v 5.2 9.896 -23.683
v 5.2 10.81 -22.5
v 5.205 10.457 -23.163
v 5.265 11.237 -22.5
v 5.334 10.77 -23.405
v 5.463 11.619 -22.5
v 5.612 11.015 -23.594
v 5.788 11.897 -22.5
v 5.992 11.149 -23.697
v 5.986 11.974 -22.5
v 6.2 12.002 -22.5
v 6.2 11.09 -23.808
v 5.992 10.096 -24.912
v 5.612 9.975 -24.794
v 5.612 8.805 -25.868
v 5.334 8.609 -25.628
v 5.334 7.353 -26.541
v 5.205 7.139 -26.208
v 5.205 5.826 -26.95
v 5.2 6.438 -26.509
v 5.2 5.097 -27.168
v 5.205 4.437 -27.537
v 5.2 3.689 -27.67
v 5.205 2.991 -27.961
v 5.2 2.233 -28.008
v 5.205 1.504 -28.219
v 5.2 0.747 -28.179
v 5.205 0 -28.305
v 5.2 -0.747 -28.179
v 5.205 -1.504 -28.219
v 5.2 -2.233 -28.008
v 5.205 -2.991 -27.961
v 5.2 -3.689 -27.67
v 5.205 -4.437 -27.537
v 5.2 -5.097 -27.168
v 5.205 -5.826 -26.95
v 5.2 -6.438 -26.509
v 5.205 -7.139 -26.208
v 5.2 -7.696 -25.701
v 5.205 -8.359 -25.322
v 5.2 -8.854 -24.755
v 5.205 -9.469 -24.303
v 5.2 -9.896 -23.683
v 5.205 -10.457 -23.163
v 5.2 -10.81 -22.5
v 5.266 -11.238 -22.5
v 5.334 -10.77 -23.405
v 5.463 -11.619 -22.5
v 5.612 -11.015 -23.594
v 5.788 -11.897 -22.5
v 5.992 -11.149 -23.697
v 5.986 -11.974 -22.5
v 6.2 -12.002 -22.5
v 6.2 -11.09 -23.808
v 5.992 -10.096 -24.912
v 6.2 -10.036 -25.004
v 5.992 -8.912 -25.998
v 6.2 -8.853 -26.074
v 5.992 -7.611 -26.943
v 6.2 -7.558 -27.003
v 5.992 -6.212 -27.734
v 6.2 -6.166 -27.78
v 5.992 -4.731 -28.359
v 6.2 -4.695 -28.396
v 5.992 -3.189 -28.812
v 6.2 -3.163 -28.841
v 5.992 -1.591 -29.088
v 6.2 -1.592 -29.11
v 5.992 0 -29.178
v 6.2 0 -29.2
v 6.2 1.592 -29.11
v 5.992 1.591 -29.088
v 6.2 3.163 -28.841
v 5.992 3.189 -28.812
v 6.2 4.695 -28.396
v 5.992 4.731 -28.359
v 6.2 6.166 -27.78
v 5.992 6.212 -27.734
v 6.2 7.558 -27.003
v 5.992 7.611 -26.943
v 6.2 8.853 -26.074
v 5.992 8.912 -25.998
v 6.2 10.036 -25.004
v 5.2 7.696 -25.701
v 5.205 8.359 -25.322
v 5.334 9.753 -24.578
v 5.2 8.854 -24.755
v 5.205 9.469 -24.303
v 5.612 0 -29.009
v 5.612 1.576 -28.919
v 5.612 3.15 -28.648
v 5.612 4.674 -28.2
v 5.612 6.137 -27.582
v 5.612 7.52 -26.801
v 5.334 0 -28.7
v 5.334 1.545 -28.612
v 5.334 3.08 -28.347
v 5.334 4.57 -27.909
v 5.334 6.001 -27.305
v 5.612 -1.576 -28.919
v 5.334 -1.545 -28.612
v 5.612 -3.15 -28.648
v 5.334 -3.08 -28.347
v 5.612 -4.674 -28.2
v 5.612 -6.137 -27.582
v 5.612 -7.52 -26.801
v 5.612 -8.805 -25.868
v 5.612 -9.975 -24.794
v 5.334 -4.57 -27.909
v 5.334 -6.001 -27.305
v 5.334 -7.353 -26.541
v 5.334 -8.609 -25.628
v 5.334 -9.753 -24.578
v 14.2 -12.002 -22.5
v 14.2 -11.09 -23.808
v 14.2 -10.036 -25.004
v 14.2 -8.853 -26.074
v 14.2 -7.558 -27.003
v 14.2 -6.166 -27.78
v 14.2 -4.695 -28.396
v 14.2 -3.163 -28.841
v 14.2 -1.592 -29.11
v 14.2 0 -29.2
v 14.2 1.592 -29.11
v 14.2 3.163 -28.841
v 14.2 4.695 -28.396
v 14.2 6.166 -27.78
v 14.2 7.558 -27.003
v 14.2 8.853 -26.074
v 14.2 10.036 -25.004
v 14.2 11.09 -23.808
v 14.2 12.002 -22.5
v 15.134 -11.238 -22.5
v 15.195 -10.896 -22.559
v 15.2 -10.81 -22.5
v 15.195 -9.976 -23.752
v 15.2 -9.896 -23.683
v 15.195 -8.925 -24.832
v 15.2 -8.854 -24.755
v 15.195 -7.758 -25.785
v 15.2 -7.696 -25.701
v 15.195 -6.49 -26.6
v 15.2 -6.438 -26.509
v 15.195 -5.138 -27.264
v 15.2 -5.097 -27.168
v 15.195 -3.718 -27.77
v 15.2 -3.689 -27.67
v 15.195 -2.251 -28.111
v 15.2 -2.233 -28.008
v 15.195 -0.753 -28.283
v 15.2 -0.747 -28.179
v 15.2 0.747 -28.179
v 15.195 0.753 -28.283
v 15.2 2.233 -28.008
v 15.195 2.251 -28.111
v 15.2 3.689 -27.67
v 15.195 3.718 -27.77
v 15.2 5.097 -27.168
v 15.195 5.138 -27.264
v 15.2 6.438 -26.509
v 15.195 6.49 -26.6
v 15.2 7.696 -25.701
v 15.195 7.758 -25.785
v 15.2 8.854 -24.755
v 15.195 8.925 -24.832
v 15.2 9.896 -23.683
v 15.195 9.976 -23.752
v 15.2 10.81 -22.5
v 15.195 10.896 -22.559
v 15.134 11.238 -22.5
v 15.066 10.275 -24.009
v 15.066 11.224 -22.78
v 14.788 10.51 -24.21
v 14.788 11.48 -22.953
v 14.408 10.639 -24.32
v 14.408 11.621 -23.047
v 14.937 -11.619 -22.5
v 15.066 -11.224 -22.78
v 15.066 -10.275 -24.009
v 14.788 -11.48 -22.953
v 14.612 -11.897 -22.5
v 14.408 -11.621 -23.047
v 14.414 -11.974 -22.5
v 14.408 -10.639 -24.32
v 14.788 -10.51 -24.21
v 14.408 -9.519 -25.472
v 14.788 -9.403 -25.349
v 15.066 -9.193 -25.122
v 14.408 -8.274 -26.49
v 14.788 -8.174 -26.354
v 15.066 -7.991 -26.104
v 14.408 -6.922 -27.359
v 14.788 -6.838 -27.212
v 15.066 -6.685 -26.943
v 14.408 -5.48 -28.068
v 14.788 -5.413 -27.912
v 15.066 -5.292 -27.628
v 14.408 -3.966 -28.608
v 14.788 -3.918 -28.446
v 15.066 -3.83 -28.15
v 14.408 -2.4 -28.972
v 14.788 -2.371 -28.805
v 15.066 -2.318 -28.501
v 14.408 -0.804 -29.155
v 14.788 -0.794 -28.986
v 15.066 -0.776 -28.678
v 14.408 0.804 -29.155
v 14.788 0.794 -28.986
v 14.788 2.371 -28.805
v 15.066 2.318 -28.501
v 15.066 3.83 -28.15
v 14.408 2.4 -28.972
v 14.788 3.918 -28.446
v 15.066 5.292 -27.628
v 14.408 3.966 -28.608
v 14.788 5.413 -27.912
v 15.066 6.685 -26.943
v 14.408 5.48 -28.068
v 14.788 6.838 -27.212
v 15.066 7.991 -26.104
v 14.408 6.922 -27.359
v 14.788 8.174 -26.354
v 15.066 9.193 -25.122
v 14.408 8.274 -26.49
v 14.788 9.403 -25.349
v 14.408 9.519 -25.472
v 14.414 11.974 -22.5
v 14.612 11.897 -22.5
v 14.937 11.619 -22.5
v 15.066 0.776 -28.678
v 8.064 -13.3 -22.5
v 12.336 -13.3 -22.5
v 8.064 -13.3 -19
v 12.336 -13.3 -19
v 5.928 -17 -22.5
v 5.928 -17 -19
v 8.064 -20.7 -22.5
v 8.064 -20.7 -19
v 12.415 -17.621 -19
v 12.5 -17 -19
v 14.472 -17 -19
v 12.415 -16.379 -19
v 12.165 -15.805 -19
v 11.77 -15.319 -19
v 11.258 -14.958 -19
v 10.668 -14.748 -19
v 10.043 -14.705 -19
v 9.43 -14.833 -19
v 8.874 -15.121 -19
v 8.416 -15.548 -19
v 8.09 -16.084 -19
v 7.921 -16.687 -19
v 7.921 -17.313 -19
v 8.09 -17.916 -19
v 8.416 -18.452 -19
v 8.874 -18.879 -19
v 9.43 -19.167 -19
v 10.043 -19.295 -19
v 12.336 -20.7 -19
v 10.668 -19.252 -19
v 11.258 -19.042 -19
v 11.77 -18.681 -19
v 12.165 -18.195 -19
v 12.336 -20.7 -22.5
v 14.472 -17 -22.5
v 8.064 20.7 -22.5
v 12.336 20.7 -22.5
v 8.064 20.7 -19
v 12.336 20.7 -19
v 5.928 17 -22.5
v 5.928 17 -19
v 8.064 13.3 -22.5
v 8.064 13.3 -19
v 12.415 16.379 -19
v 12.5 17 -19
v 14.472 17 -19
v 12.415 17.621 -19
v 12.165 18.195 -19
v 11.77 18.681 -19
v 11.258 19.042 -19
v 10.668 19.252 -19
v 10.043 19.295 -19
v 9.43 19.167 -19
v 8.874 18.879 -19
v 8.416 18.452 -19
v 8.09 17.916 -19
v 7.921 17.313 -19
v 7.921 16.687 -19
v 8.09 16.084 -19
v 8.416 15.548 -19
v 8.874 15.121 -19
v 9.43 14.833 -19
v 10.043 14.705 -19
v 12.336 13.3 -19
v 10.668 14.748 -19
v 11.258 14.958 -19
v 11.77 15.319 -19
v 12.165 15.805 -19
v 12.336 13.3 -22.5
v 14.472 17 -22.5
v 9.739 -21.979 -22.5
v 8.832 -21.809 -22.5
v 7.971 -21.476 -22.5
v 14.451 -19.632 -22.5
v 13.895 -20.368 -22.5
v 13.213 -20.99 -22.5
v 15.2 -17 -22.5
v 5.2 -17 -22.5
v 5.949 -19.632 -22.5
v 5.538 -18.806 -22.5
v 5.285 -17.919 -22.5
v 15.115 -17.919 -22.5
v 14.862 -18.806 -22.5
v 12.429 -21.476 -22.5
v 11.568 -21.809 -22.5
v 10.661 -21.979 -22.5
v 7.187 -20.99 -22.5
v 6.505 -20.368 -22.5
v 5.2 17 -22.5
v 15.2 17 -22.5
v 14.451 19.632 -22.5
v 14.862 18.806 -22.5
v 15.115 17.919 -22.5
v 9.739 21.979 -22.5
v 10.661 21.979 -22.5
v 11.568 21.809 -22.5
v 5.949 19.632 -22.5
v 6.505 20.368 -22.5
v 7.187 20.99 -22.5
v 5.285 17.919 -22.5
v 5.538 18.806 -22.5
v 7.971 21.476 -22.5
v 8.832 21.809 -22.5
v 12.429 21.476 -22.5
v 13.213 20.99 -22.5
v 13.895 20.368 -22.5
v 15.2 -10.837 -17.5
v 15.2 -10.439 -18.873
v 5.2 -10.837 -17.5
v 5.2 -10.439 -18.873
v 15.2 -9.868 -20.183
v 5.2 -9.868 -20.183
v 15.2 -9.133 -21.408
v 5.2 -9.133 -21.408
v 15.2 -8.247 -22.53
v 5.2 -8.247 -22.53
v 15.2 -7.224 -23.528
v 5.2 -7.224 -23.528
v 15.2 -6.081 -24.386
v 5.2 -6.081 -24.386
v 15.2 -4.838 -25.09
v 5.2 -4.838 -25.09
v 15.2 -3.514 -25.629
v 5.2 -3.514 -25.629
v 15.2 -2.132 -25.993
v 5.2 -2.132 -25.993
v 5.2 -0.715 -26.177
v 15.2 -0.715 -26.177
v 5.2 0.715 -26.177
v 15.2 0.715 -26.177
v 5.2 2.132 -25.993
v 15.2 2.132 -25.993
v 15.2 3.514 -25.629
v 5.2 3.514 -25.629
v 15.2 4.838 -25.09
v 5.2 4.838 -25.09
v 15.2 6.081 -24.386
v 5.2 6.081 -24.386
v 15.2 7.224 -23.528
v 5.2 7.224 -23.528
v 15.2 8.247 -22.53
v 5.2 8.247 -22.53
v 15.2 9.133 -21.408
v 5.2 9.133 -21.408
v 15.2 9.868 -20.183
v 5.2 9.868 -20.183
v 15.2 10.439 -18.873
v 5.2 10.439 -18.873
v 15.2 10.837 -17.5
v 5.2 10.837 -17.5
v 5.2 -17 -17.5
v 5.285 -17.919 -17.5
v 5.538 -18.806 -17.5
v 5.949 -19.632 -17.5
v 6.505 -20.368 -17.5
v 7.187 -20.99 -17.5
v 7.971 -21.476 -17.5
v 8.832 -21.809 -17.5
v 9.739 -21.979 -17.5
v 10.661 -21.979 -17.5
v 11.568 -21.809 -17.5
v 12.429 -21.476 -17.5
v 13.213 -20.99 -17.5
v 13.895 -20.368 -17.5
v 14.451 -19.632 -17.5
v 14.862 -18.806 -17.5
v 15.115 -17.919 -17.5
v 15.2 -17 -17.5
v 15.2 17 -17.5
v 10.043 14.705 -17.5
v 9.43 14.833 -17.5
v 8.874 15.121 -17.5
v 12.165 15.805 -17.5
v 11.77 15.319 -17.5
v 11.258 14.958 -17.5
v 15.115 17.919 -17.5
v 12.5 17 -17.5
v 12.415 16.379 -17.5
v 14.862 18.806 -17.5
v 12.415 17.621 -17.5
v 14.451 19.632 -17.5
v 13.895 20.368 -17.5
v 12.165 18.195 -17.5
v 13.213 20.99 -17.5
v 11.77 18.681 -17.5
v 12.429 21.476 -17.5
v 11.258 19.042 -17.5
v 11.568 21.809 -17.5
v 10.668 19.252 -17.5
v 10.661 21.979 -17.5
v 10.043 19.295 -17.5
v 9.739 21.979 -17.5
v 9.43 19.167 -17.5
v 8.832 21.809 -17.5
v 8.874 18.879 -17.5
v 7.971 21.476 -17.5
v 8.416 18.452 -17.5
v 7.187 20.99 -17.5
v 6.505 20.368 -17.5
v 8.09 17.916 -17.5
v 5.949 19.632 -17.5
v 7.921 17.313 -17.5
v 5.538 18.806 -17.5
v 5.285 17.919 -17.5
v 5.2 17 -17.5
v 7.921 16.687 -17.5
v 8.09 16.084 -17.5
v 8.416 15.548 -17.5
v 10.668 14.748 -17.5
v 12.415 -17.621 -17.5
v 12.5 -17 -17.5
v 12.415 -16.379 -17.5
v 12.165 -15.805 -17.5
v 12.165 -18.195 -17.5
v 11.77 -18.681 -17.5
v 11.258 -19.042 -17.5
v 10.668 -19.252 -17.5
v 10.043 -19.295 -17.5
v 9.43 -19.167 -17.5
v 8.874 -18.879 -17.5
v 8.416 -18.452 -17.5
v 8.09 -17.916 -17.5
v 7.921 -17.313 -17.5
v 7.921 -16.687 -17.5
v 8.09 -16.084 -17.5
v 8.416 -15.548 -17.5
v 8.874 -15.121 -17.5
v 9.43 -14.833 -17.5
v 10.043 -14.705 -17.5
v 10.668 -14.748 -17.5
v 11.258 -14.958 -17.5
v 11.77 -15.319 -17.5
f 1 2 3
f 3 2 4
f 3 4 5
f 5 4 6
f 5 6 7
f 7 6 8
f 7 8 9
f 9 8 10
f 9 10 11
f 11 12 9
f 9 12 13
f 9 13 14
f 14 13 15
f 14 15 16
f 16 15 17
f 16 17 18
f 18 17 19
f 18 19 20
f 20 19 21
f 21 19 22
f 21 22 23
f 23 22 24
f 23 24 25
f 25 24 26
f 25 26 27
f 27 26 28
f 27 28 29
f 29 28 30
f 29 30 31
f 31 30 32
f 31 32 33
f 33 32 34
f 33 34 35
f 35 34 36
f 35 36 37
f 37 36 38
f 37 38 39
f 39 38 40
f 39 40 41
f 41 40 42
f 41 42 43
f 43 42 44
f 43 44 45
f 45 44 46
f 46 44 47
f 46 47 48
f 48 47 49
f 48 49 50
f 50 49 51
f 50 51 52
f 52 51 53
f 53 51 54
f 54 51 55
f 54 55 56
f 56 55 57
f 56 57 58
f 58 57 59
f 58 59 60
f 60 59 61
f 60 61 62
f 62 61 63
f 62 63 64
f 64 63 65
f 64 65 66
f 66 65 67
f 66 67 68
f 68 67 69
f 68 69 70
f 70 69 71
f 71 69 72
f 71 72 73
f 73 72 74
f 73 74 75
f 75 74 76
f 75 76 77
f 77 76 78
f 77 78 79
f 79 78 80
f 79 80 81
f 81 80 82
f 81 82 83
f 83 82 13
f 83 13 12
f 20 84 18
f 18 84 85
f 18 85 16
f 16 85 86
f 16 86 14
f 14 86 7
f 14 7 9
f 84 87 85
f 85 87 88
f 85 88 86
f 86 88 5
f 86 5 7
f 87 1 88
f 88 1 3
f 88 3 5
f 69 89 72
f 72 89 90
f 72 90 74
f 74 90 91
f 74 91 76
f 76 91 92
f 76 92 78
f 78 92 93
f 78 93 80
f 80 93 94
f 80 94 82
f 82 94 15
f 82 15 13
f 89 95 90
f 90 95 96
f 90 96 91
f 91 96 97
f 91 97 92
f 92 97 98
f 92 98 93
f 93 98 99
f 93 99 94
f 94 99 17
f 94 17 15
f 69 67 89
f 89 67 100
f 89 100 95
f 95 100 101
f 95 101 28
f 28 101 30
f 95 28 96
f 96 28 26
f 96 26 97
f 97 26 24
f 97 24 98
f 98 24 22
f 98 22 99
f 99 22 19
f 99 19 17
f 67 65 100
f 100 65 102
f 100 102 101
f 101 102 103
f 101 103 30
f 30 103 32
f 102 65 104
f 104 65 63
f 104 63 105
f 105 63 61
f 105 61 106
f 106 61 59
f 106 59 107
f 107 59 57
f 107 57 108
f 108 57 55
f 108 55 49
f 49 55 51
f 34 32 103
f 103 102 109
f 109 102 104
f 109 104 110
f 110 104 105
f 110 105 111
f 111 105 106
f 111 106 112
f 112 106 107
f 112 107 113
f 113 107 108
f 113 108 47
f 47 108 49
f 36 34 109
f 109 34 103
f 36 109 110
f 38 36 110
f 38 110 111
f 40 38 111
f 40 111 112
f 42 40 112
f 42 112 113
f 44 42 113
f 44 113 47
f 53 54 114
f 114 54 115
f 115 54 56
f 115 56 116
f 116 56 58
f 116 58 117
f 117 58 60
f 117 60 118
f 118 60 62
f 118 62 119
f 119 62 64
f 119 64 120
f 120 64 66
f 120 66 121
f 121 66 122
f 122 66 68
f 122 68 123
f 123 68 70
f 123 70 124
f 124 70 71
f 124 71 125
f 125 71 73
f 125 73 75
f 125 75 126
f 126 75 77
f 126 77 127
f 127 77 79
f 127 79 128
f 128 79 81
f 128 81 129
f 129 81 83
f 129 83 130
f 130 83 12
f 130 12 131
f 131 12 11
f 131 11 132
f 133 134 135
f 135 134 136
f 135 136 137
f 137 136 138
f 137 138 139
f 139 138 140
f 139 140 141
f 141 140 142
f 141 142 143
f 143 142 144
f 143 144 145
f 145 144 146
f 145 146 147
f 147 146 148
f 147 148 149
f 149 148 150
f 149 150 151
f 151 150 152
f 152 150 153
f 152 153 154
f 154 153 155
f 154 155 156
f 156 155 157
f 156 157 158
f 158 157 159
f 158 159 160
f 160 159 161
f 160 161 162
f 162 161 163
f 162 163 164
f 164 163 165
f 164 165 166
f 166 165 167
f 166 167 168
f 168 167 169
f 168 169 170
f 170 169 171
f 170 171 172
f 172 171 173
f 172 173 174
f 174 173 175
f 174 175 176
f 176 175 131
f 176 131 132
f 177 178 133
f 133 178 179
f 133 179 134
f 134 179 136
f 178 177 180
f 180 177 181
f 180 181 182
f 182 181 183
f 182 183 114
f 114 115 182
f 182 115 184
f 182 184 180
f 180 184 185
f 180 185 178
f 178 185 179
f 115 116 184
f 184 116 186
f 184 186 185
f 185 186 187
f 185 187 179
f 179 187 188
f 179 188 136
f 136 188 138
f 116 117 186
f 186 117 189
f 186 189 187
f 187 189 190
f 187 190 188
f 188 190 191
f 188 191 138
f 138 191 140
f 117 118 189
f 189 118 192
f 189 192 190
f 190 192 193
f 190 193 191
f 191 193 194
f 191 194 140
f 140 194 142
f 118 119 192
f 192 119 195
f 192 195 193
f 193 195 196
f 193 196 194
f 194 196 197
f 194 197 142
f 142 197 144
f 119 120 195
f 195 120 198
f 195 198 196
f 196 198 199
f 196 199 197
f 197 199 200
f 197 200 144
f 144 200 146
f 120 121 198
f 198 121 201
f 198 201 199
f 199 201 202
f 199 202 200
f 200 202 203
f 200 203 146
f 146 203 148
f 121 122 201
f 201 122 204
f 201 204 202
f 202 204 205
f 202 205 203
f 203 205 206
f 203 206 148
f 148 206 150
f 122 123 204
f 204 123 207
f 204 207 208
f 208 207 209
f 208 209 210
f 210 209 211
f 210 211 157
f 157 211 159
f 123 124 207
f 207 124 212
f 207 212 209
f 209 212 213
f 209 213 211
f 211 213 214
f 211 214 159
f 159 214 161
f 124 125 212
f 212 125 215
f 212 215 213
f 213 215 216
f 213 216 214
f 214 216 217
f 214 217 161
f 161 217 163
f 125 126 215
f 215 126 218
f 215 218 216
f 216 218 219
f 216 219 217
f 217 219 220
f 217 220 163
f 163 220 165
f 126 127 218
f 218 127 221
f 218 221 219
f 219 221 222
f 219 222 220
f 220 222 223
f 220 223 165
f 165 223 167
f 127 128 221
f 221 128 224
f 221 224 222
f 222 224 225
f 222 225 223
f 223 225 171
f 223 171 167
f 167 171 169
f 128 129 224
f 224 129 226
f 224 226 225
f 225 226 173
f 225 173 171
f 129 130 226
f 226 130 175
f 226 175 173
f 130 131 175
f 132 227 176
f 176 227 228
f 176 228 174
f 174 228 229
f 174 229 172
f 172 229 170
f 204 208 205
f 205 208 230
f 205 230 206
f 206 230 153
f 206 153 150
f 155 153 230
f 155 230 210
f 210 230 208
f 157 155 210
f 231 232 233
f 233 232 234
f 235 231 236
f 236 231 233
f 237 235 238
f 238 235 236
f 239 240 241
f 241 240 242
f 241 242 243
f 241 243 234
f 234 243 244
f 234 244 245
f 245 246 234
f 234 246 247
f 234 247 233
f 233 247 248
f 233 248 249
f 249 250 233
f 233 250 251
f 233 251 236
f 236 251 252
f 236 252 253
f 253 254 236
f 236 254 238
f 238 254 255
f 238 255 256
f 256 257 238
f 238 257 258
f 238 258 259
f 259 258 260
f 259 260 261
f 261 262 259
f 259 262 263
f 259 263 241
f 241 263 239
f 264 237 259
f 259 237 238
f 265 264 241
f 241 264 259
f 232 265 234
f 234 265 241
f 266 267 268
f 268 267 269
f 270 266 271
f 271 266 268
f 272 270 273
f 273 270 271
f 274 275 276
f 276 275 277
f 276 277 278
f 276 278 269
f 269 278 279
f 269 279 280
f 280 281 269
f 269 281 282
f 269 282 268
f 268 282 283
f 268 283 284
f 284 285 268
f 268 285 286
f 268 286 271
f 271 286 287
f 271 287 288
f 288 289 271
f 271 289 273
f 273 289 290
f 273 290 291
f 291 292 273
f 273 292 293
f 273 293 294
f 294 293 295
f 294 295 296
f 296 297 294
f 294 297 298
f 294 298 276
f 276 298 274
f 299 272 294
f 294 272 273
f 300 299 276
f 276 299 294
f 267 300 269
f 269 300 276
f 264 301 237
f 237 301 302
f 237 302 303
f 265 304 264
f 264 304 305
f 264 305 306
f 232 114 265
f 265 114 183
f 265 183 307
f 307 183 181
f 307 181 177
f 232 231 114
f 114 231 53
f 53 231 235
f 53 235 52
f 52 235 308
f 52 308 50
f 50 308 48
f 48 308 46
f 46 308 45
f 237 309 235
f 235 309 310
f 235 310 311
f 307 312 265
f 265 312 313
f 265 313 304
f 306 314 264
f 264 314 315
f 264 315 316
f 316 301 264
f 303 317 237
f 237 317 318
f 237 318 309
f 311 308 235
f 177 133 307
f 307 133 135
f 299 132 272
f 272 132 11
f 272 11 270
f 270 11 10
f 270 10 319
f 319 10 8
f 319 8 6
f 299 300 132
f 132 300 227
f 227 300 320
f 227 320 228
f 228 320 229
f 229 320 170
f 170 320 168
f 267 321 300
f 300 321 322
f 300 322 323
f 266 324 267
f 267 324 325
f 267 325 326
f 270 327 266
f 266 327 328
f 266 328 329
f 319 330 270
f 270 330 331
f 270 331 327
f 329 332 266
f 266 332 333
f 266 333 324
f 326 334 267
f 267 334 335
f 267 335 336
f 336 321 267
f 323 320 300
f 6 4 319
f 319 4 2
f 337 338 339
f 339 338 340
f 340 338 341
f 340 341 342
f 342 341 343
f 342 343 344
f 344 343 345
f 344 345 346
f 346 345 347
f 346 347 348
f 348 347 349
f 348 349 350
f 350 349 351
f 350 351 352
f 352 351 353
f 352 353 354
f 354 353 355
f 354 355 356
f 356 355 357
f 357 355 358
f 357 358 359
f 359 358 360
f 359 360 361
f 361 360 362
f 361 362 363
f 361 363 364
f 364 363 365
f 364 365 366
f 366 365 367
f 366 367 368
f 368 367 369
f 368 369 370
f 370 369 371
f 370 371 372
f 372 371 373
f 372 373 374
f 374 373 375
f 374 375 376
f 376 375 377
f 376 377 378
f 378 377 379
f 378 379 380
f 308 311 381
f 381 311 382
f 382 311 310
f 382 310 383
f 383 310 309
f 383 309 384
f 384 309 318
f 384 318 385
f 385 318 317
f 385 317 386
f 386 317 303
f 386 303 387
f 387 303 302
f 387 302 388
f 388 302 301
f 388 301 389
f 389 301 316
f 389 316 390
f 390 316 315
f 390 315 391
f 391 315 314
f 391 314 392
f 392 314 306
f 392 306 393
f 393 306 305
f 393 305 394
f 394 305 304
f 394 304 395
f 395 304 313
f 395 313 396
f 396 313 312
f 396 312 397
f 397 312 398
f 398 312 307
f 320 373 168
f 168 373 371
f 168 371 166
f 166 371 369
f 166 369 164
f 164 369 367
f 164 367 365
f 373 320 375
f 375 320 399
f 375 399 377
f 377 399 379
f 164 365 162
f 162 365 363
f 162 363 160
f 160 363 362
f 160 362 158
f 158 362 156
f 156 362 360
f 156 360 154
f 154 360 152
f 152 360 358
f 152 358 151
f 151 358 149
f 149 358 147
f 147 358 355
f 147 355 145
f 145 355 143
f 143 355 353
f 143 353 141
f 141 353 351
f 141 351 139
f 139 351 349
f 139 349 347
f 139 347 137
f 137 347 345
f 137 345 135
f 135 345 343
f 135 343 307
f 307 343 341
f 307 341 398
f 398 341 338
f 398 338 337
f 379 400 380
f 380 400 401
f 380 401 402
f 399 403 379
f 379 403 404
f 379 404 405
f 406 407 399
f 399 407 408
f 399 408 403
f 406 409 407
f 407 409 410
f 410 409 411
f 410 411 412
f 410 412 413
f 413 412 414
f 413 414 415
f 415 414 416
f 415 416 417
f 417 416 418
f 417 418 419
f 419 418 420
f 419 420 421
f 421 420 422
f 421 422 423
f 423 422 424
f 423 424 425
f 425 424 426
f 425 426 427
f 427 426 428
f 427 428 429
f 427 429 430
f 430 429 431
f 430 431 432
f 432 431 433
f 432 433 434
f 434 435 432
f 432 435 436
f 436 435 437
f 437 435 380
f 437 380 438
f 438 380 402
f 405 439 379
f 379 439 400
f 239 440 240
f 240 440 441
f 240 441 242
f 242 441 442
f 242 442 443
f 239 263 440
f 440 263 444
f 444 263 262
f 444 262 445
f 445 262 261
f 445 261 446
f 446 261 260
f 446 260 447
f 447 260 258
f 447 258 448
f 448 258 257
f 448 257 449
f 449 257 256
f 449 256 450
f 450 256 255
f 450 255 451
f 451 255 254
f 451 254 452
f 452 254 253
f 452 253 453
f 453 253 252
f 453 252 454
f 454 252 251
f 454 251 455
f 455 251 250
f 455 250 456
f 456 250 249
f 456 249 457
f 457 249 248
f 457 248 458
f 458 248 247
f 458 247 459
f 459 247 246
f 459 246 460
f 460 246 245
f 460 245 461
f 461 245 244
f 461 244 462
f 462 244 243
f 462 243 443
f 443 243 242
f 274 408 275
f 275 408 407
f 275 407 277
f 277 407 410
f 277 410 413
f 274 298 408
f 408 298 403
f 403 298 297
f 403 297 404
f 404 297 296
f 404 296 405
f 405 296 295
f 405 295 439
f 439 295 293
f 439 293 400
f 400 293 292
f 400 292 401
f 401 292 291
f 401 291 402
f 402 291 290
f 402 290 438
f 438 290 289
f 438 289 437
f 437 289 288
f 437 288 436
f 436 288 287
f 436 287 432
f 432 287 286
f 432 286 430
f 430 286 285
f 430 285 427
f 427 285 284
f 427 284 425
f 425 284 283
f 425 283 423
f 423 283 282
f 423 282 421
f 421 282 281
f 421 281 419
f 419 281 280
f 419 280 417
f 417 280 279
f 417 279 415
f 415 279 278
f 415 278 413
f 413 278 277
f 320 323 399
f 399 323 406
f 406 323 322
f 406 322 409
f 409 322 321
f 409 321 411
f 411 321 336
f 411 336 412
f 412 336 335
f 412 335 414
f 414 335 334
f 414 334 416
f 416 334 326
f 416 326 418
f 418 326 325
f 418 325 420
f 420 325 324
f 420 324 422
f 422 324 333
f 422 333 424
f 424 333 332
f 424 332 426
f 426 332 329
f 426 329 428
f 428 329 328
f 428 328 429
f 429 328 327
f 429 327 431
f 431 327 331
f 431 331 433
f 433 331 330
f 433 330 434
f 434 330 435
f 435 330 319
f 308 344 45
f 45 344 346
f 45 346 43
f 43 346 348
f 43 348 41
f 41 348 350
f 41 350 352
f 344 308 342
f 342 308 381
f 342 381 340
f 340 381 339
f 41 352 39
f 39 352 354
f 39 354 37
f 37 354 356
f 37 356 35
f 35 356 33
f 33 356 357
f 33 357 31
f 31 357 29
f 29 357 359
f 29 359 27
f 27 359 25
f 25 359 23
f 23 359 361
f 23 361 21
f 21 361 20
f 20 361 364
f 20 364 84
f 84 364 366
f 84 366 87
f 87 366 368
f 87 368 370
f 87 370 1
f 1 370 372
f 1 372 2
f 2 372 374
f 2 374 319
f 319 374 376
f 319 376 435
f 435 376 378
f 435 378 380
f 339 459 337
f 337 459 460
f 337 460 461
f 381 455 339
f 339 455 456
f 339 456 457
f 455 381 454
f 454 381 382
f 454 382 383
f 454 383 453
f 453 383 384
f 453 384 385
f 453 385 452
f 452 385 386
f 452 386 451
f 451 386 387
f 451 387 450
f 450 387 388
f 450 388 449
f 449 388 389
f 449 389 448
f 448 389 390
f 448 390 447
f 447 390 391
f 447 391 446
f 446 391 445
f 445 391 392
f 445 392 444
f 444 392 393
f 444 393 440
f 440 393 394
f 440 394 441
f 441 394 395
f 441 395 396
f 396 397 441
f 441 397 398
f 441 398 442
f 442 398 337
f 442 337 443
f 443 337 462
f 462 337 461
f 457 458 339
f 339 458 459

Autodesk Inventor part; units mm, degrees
ref_plane "YZ Plane" through (0, 0, 0) normal (1, 0, 0) x (0, 1, 0)
ref_plane "XZ Plane" through (0, 0, 0) normal (0, 1, 0) x (-1, 0, 0)
ref_plane "Arbeitsebene1" through (0, 0, -17.5) normal (0, 0, 1) x (1, 0, 0)
sketch "Skizze1" plane through (0, 0, -17.5) normal (0, 0, 1) x (1, 0, 0)
  arc A0 (5.2, -17) -> (15.2, -17) centre (10.2, -17) ccw
  circle A1 centre (10.2, -17) radius 2.3
  circle A2 centre (10.2, 17) radius 2.3
  arc A3 (15.2, 17) -> (5.2, 17) centre (10.2, 17) ccw
  line L0 (15.2, 17) -> (15.2, -17)
  line L1 (5.2, -17) -> (5.2, 17)
  point P0 (0, 0)
  dimension "d17" = 34
  dimension "d19" = 5
  dimension "d20" = 5
  dimension "d21" = 4.6
  dimension "d22" = 4.6
  dimension "d23" = 5.2
  dimension "d24" = 15.2
  dimension "d25" = 17
extrude "Extrusion1" add sketch "Skizze1" against normal blind 15
sketch "Skizze2" plane through (15.2, -17, -17.5) normal (1, 0, 0) x (0, 0, -1)
  circle A0 centre (-2.4, 17) radius 11.1
  circle A1 centre (-2.4, 17) radius 14.1
  line L0 (0, 39) -> (15, 39) projected
  line L1 (5, 39) -> (5, 29.0021)
  line L2 (5, 39) -> (-2.0976, 39.0148)
  line L3 (-2.0976, 39.0148) -> (-4.3191, 38.5001)
  line L4 (-4.3191, 38.5001) -> (-4.8354, 27.8295)
  line L5 (-4.8906, 6.183) -> (-12.1302, -16.582)
  line L6 (-12.1302, -16.582) -> (7.7221, -22.1422)
  line L7 (7.7221, -22.1422) -> (5, -5)
  line L8 (0, -5) -> (15, -5) projected
  line L9 (5, -5) -> (5, 4.9979)
  line L10 (0, 0) -> (0, -5) projected
  line L11 (36.0228, 70.8555) -> (-22.3921, 70.8555)
  line L12 (-22.3921, 70.8555) -> (-22.3921, -28.3632)
  line L13 (-22.3921, -28.3632) -> (36.0228, -28.3632)
  line L14 (36.0228, -28.3632) -> (36.0228, 70.8555)
  point P0 (-17.5, 17)
  point P1 (-5.8022, 3.3166)
  point P2 (-4.6862, 30.9134)
  dimension "d5" = 3
  dimension "d6" = 5
  dimension "d26" = 44
  dimension "d27" = 22
  dimension "d28" = 22.2
  dimension "d29" = 15.1
extrude "Extrusion2" cut sketch "Skizze2" against normal blind 10 contours A0 | L14 L13 L12 L11
sketch "Skizze3" plane through (15.2, -17, -22.5) normal (0, 0, -1) x (-1, 0, 0)
  circle A0 centre (5, 34) radius 2.3 projected
  line L0 (2.8638, 30.3) -> (0.7276, 34)
  line L1 (0.7276, 34) -> (2.8638, 37.7)
  line L2 (2.8638, 37.7) -> (7.1362, 37.7)
  line L3 (7.1362, 37.7) -> (9.2724, 34)
  line L4 (9.2724, 34) -> (7.1362, 30.3)
  line L5 (7.1362, 30.3) -> (2.8638, 30.3)
  line L6 (0.7276, 0) -> (2.8638, 3.7)
  line L7 (2.8638, 3.7) -> (7.1362, 3.7)
  line L8 (7.1362, 3.7) -> (9.2724, 0)
  line L9 (9.2724, 0) -> (7.1362, -3.7)
  line L10 (7.1362, -3.7) -> (2.8638, -3.7)
  line L11 (2.8638, -3.7) -> (0.7276, 0)
  point P0 (15.2, 17)
  point P1 (5, 34)
  point P2 (5, 0)
  point P3 (5, 0)
  point P4 (5.6446, 34.7922)
  point P5 (4.3554, 34.7922)
  dimension "d9" = 7.4
  dimension "d10" = 7.4
extrude "Extrusion3" cut sketch "Skizze3" along normal blind 10 and the other way blind 3.5 contours A0 | L0 L1 L2 L3 L4 L5 | L6 L7 L8 L9 L10 L11
fillet "Rundung1" radius 1 2 edges at (15.2, 0, -29.2) (5.2, 0, -29.2)
equation "\"d20\" = d19"
equation "\"d27\" = 0.5 * d26"
equation "\"d10\" = d9"
properties part number "Bracket22_2"
